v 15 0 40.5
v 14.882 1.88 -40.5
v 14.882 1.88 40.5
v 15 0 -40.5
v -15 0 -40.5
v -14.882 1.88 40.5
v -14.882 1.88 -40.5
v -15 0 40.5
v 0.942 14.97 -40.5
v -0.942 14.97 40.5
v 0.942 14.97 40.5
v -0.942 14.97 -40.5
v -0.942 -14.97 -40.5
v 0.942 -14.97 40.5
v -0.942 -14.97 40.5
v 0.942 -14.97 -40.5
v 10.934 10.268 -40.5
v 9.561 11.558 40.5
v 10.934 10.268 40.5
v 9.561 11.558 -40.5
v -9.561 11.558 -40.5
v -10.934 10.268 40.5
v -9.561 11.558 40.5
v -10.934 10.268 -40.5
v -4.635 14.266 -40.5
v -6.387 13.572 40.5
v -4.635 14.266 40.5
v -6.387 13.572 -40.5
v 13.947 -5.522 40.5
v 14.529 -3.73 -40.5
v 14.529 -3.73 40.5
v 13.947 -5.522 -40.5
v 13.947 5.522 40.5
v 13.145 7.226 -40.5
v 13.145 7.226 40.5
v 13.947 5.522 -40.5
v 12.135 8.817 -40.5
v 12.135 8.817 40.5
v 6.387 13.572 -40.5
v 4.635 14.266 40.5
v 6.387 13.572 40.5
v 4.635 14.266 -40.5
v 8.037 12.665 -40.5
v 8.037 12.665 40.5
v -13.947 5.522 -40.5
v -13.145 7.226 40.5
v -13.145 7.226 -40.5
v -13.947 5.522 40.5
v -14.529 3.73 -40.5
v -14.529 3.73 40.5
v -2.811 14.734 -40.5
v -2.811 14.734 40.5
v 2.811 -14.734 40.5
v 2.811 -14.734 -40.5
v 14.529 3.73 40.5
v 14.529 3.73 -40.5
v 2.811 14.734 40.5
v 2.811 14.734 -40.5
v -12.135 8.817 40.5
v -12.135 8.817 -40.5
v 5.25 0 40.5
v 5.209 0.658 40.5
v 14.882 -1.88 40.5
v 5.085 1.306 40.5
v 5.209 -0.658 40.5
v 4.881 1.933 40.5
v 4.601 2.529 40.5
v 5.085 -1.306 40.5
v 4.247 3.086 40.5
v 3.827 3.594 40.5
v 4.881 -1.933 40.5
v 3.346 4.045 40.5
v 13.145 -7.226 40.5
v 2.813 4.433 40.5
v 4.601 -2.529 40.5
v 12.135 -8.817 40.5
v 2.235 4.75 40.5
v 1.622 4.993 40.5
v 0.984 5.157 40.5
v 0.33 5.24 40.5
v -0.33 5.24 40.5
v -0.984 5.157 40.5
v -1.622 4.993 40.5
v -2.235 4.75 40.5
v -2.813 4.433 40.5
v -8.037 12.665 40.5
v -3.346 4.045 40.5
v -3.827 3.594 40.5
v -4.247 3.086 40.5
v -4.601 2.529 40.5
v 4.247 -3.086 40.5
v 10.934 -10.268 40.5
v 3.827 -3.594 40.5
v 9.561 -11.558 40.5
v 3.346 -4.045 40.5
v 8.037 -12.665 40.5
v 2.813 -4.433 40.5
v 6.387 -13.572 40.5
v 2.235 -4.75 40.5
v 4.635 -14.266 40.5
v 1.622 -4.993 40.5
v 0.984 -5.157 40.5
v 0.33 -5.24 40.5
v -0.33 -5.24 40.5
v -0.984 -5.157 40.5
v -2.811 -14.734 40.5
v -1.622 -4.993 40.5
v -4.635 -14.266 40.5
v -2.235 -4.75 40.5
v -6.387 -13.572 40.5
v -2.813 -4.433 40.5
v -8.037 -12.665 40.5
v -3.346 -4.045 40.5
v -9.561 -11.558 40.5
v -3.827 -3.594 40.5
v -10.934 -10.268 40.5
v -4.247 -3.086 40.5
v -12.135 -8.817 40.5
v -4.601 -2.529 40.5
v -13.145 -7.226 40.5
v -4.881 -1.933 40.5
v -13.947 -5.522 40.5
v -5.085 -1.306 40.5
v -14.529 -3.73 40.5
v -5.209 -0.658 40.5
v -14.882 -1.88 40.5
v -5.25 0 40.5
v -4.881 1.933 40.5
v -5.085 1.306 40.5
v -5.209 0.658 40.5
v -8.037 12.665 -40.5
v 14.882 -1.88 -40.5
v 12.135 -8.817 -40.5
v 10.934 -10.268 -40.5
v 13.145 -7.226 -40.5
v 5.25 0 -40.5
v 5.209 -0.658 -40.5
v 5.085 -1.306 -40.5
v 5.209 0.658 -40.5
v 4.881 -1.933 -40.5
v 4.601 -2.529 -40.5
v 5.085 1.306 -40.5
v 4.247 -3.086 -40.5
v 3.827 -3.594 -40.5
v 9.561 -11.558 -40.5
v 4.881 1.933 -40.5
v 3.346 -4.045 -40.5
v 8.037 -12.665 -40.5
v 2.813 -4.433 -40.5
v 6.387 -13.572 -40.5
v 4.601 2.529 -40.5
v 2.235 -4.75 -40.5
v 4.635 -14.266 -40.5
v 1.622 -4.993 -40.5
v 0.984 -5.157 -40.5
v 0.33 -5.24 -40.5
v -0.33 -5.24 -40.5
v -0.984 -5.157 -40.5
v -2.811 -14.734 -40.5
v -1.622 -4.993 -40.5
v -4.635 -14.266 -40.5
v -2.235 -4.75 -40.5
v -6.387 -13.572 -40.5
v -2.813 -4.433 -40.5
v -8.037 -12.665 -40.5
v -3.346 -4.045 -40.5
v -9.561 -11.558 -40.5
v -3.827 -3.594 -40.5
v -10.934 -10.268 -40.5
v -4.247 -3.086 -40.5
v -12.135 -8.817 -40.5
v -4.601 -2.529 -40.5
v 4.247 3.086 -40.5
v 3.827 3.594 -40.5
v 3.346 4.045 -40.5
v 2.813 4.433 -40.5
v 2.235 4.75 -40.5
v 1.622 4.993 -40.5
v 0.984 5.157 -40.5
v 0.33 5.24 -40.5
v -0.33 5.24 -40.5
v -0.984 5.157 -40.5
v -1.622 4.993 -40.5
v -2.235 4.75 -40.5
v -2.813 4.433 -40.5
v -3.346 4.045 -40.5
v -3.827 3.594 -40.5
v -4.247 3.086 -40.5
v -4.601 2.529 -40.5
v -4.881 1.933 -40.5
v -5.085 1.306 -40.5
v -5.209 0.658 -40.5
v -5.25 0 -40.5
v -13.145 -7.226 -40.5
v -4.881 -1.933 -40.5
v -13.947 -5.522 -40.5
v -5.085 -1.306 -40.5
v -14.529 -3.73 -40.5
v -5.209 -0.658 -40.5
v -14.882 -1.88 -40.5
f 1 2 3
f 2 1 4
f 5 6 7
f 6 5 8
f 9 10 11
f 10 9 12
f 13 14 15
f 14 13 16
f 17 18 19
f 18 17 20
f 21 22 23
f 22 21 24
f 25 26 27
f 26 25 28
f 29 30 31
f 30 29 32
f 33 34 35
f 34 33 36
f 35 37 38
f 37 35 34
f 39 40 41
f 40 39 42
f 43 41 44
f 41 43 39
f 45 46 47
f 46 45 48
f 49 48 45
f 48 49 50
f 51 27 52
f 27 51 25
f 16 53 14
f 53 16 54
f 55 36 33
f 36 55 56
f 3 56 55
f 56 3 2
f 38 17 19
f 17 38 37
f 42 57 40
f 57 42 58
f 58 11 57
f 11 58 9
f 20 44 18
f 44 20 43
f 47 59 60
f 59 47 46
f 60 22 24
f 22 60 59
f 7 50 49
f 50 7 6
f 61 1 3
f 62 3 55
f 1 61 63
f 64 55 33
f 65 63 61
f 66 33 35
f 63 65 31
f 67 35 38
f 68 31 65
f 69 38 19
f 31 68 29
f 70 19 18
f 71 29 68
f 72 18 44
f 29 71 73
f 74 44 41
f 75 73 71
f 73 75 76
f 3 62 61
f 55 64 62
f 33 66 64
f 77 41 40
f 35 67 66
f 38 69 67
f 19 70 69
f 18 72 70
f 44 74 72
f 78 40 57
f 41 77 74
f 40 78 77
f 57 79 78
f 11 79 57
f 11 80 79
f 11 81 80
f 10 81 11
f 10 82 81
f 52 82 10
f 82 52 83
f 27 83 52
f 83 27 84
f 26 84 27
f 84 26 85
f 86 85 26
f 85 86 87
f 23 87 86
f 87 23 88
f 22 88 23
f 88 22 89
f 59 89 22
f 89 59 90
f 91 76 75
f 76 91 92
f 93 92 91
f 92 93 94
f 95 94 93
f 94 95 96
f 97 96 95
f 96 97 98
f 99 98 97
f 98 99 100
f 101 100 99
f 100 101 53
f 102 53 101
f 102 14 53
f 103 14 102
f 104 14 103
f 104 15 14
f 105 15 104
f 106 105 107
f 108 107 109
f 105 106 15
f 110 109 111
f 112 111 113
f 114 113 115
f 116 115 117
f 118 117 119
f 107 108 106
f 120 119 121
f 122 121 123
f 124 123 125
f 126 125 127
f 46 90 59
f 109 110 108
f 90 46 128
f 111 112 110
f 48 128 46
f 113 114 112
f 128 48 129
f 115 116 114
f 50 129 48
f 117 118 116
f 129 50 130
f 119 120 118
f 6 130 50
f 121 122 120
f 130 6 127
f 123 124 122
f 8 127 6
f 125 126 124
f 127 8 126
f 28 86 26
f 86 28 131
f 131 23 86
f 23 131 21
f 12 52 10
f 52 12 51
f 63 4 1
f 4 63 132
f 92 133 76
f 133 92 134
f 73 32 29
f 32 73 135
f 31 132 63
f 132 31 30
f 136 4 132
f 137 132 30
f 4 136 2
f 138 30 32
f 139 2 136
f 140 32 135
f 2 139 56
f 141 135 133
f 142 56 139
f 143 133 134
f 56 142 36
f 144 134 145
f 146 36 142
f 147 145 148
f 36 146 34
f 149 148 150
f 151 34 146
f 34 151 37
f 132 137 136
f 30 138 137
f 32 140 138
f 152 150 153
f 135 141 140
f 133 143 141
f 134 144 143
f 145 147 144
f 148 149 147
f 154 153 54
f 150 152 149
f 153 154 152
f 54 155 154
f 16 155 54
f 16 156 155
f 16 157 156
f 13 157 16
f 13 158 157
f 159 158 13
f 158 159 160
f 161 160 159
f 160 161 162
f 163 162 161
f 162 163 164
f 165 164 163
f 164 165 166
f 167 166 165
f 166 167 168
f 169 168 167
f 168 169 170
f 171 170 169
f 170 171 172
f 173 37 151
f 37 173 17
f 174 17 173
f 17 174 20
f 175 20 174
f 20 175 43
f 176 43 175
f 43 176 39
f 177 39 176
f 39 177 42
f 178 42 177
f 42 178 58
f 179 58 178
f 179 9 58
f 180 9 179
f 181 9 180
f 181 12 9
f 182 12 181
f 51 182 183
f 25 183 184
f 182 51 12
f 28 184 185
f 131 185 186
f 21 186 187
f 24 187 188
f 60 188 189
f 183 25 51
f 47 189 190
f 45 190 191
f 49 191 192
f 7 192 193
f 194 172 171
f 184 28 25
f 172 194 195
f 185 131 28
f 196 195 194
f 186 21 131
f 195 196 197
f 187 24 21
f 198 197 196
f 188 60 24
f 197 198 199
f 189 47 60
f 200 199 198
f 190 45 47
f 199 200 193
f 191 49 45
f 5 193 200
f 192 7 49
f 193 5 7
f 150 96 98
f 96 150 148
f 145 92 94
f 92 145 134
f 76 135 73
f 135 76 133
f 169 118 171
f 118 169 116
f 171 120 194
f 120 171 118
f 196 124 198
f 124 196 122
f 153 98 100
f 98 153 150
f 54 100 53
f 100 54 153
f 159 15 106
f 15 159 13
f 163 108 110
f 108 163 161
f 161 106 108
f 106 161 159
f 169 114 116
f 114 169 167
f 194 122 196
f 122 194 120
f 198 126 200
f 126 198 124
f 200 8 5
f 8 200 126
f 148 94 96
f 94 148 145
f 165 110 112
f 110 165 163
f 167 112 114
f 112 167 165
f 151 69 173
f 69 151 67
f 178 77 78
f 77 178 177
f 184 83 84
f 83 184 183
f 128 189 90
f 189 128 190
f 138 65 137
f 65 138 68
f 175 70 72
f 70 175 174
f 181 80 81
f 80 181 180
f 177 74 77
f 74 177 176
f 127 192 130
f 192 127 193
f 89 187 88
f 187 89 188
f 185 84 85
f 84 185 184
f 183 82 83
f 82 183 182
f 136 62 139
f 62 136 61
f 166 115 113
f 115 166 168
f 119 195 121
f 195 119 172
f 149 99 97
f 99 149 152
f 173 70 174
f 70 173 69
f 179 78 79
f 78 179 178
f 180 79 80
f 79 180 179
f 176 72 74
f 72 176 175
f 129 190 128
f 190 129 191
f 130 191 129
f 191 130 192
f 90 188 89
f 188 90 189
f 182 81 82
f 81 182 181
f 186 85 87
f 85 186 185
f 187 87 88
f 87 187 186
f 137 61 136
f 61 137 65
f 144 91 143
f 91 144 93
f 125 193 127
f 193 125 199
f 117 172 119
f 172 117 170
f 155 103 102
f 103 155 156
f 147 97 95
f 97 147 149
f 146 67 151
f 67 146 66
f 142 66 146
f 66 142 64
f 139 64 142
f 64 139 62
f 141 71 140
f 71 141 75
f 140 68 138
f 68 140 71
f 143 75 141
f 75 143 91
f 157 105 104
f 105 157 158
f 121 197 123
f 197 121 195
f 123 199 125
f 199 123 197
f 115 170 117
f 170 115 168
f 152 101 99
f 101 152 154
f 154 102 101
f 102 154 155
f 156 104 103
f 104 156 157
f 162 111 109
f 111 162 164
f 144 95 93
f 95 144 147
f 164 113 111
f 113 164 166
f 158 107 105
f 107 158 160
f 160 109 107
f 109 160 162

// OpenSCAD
$fn = 50;


difference() {
	union() {
		translate(v = [0, 0, -40.5000000000]) {
			cylinder(h = 81, r = 15.0000000000);
		}
	}
	union() {
		translate(v = [0, 0, -100.0000000000]) {
			cylinder(h = 200, r = 5.2500000000);
		}
	}
}
